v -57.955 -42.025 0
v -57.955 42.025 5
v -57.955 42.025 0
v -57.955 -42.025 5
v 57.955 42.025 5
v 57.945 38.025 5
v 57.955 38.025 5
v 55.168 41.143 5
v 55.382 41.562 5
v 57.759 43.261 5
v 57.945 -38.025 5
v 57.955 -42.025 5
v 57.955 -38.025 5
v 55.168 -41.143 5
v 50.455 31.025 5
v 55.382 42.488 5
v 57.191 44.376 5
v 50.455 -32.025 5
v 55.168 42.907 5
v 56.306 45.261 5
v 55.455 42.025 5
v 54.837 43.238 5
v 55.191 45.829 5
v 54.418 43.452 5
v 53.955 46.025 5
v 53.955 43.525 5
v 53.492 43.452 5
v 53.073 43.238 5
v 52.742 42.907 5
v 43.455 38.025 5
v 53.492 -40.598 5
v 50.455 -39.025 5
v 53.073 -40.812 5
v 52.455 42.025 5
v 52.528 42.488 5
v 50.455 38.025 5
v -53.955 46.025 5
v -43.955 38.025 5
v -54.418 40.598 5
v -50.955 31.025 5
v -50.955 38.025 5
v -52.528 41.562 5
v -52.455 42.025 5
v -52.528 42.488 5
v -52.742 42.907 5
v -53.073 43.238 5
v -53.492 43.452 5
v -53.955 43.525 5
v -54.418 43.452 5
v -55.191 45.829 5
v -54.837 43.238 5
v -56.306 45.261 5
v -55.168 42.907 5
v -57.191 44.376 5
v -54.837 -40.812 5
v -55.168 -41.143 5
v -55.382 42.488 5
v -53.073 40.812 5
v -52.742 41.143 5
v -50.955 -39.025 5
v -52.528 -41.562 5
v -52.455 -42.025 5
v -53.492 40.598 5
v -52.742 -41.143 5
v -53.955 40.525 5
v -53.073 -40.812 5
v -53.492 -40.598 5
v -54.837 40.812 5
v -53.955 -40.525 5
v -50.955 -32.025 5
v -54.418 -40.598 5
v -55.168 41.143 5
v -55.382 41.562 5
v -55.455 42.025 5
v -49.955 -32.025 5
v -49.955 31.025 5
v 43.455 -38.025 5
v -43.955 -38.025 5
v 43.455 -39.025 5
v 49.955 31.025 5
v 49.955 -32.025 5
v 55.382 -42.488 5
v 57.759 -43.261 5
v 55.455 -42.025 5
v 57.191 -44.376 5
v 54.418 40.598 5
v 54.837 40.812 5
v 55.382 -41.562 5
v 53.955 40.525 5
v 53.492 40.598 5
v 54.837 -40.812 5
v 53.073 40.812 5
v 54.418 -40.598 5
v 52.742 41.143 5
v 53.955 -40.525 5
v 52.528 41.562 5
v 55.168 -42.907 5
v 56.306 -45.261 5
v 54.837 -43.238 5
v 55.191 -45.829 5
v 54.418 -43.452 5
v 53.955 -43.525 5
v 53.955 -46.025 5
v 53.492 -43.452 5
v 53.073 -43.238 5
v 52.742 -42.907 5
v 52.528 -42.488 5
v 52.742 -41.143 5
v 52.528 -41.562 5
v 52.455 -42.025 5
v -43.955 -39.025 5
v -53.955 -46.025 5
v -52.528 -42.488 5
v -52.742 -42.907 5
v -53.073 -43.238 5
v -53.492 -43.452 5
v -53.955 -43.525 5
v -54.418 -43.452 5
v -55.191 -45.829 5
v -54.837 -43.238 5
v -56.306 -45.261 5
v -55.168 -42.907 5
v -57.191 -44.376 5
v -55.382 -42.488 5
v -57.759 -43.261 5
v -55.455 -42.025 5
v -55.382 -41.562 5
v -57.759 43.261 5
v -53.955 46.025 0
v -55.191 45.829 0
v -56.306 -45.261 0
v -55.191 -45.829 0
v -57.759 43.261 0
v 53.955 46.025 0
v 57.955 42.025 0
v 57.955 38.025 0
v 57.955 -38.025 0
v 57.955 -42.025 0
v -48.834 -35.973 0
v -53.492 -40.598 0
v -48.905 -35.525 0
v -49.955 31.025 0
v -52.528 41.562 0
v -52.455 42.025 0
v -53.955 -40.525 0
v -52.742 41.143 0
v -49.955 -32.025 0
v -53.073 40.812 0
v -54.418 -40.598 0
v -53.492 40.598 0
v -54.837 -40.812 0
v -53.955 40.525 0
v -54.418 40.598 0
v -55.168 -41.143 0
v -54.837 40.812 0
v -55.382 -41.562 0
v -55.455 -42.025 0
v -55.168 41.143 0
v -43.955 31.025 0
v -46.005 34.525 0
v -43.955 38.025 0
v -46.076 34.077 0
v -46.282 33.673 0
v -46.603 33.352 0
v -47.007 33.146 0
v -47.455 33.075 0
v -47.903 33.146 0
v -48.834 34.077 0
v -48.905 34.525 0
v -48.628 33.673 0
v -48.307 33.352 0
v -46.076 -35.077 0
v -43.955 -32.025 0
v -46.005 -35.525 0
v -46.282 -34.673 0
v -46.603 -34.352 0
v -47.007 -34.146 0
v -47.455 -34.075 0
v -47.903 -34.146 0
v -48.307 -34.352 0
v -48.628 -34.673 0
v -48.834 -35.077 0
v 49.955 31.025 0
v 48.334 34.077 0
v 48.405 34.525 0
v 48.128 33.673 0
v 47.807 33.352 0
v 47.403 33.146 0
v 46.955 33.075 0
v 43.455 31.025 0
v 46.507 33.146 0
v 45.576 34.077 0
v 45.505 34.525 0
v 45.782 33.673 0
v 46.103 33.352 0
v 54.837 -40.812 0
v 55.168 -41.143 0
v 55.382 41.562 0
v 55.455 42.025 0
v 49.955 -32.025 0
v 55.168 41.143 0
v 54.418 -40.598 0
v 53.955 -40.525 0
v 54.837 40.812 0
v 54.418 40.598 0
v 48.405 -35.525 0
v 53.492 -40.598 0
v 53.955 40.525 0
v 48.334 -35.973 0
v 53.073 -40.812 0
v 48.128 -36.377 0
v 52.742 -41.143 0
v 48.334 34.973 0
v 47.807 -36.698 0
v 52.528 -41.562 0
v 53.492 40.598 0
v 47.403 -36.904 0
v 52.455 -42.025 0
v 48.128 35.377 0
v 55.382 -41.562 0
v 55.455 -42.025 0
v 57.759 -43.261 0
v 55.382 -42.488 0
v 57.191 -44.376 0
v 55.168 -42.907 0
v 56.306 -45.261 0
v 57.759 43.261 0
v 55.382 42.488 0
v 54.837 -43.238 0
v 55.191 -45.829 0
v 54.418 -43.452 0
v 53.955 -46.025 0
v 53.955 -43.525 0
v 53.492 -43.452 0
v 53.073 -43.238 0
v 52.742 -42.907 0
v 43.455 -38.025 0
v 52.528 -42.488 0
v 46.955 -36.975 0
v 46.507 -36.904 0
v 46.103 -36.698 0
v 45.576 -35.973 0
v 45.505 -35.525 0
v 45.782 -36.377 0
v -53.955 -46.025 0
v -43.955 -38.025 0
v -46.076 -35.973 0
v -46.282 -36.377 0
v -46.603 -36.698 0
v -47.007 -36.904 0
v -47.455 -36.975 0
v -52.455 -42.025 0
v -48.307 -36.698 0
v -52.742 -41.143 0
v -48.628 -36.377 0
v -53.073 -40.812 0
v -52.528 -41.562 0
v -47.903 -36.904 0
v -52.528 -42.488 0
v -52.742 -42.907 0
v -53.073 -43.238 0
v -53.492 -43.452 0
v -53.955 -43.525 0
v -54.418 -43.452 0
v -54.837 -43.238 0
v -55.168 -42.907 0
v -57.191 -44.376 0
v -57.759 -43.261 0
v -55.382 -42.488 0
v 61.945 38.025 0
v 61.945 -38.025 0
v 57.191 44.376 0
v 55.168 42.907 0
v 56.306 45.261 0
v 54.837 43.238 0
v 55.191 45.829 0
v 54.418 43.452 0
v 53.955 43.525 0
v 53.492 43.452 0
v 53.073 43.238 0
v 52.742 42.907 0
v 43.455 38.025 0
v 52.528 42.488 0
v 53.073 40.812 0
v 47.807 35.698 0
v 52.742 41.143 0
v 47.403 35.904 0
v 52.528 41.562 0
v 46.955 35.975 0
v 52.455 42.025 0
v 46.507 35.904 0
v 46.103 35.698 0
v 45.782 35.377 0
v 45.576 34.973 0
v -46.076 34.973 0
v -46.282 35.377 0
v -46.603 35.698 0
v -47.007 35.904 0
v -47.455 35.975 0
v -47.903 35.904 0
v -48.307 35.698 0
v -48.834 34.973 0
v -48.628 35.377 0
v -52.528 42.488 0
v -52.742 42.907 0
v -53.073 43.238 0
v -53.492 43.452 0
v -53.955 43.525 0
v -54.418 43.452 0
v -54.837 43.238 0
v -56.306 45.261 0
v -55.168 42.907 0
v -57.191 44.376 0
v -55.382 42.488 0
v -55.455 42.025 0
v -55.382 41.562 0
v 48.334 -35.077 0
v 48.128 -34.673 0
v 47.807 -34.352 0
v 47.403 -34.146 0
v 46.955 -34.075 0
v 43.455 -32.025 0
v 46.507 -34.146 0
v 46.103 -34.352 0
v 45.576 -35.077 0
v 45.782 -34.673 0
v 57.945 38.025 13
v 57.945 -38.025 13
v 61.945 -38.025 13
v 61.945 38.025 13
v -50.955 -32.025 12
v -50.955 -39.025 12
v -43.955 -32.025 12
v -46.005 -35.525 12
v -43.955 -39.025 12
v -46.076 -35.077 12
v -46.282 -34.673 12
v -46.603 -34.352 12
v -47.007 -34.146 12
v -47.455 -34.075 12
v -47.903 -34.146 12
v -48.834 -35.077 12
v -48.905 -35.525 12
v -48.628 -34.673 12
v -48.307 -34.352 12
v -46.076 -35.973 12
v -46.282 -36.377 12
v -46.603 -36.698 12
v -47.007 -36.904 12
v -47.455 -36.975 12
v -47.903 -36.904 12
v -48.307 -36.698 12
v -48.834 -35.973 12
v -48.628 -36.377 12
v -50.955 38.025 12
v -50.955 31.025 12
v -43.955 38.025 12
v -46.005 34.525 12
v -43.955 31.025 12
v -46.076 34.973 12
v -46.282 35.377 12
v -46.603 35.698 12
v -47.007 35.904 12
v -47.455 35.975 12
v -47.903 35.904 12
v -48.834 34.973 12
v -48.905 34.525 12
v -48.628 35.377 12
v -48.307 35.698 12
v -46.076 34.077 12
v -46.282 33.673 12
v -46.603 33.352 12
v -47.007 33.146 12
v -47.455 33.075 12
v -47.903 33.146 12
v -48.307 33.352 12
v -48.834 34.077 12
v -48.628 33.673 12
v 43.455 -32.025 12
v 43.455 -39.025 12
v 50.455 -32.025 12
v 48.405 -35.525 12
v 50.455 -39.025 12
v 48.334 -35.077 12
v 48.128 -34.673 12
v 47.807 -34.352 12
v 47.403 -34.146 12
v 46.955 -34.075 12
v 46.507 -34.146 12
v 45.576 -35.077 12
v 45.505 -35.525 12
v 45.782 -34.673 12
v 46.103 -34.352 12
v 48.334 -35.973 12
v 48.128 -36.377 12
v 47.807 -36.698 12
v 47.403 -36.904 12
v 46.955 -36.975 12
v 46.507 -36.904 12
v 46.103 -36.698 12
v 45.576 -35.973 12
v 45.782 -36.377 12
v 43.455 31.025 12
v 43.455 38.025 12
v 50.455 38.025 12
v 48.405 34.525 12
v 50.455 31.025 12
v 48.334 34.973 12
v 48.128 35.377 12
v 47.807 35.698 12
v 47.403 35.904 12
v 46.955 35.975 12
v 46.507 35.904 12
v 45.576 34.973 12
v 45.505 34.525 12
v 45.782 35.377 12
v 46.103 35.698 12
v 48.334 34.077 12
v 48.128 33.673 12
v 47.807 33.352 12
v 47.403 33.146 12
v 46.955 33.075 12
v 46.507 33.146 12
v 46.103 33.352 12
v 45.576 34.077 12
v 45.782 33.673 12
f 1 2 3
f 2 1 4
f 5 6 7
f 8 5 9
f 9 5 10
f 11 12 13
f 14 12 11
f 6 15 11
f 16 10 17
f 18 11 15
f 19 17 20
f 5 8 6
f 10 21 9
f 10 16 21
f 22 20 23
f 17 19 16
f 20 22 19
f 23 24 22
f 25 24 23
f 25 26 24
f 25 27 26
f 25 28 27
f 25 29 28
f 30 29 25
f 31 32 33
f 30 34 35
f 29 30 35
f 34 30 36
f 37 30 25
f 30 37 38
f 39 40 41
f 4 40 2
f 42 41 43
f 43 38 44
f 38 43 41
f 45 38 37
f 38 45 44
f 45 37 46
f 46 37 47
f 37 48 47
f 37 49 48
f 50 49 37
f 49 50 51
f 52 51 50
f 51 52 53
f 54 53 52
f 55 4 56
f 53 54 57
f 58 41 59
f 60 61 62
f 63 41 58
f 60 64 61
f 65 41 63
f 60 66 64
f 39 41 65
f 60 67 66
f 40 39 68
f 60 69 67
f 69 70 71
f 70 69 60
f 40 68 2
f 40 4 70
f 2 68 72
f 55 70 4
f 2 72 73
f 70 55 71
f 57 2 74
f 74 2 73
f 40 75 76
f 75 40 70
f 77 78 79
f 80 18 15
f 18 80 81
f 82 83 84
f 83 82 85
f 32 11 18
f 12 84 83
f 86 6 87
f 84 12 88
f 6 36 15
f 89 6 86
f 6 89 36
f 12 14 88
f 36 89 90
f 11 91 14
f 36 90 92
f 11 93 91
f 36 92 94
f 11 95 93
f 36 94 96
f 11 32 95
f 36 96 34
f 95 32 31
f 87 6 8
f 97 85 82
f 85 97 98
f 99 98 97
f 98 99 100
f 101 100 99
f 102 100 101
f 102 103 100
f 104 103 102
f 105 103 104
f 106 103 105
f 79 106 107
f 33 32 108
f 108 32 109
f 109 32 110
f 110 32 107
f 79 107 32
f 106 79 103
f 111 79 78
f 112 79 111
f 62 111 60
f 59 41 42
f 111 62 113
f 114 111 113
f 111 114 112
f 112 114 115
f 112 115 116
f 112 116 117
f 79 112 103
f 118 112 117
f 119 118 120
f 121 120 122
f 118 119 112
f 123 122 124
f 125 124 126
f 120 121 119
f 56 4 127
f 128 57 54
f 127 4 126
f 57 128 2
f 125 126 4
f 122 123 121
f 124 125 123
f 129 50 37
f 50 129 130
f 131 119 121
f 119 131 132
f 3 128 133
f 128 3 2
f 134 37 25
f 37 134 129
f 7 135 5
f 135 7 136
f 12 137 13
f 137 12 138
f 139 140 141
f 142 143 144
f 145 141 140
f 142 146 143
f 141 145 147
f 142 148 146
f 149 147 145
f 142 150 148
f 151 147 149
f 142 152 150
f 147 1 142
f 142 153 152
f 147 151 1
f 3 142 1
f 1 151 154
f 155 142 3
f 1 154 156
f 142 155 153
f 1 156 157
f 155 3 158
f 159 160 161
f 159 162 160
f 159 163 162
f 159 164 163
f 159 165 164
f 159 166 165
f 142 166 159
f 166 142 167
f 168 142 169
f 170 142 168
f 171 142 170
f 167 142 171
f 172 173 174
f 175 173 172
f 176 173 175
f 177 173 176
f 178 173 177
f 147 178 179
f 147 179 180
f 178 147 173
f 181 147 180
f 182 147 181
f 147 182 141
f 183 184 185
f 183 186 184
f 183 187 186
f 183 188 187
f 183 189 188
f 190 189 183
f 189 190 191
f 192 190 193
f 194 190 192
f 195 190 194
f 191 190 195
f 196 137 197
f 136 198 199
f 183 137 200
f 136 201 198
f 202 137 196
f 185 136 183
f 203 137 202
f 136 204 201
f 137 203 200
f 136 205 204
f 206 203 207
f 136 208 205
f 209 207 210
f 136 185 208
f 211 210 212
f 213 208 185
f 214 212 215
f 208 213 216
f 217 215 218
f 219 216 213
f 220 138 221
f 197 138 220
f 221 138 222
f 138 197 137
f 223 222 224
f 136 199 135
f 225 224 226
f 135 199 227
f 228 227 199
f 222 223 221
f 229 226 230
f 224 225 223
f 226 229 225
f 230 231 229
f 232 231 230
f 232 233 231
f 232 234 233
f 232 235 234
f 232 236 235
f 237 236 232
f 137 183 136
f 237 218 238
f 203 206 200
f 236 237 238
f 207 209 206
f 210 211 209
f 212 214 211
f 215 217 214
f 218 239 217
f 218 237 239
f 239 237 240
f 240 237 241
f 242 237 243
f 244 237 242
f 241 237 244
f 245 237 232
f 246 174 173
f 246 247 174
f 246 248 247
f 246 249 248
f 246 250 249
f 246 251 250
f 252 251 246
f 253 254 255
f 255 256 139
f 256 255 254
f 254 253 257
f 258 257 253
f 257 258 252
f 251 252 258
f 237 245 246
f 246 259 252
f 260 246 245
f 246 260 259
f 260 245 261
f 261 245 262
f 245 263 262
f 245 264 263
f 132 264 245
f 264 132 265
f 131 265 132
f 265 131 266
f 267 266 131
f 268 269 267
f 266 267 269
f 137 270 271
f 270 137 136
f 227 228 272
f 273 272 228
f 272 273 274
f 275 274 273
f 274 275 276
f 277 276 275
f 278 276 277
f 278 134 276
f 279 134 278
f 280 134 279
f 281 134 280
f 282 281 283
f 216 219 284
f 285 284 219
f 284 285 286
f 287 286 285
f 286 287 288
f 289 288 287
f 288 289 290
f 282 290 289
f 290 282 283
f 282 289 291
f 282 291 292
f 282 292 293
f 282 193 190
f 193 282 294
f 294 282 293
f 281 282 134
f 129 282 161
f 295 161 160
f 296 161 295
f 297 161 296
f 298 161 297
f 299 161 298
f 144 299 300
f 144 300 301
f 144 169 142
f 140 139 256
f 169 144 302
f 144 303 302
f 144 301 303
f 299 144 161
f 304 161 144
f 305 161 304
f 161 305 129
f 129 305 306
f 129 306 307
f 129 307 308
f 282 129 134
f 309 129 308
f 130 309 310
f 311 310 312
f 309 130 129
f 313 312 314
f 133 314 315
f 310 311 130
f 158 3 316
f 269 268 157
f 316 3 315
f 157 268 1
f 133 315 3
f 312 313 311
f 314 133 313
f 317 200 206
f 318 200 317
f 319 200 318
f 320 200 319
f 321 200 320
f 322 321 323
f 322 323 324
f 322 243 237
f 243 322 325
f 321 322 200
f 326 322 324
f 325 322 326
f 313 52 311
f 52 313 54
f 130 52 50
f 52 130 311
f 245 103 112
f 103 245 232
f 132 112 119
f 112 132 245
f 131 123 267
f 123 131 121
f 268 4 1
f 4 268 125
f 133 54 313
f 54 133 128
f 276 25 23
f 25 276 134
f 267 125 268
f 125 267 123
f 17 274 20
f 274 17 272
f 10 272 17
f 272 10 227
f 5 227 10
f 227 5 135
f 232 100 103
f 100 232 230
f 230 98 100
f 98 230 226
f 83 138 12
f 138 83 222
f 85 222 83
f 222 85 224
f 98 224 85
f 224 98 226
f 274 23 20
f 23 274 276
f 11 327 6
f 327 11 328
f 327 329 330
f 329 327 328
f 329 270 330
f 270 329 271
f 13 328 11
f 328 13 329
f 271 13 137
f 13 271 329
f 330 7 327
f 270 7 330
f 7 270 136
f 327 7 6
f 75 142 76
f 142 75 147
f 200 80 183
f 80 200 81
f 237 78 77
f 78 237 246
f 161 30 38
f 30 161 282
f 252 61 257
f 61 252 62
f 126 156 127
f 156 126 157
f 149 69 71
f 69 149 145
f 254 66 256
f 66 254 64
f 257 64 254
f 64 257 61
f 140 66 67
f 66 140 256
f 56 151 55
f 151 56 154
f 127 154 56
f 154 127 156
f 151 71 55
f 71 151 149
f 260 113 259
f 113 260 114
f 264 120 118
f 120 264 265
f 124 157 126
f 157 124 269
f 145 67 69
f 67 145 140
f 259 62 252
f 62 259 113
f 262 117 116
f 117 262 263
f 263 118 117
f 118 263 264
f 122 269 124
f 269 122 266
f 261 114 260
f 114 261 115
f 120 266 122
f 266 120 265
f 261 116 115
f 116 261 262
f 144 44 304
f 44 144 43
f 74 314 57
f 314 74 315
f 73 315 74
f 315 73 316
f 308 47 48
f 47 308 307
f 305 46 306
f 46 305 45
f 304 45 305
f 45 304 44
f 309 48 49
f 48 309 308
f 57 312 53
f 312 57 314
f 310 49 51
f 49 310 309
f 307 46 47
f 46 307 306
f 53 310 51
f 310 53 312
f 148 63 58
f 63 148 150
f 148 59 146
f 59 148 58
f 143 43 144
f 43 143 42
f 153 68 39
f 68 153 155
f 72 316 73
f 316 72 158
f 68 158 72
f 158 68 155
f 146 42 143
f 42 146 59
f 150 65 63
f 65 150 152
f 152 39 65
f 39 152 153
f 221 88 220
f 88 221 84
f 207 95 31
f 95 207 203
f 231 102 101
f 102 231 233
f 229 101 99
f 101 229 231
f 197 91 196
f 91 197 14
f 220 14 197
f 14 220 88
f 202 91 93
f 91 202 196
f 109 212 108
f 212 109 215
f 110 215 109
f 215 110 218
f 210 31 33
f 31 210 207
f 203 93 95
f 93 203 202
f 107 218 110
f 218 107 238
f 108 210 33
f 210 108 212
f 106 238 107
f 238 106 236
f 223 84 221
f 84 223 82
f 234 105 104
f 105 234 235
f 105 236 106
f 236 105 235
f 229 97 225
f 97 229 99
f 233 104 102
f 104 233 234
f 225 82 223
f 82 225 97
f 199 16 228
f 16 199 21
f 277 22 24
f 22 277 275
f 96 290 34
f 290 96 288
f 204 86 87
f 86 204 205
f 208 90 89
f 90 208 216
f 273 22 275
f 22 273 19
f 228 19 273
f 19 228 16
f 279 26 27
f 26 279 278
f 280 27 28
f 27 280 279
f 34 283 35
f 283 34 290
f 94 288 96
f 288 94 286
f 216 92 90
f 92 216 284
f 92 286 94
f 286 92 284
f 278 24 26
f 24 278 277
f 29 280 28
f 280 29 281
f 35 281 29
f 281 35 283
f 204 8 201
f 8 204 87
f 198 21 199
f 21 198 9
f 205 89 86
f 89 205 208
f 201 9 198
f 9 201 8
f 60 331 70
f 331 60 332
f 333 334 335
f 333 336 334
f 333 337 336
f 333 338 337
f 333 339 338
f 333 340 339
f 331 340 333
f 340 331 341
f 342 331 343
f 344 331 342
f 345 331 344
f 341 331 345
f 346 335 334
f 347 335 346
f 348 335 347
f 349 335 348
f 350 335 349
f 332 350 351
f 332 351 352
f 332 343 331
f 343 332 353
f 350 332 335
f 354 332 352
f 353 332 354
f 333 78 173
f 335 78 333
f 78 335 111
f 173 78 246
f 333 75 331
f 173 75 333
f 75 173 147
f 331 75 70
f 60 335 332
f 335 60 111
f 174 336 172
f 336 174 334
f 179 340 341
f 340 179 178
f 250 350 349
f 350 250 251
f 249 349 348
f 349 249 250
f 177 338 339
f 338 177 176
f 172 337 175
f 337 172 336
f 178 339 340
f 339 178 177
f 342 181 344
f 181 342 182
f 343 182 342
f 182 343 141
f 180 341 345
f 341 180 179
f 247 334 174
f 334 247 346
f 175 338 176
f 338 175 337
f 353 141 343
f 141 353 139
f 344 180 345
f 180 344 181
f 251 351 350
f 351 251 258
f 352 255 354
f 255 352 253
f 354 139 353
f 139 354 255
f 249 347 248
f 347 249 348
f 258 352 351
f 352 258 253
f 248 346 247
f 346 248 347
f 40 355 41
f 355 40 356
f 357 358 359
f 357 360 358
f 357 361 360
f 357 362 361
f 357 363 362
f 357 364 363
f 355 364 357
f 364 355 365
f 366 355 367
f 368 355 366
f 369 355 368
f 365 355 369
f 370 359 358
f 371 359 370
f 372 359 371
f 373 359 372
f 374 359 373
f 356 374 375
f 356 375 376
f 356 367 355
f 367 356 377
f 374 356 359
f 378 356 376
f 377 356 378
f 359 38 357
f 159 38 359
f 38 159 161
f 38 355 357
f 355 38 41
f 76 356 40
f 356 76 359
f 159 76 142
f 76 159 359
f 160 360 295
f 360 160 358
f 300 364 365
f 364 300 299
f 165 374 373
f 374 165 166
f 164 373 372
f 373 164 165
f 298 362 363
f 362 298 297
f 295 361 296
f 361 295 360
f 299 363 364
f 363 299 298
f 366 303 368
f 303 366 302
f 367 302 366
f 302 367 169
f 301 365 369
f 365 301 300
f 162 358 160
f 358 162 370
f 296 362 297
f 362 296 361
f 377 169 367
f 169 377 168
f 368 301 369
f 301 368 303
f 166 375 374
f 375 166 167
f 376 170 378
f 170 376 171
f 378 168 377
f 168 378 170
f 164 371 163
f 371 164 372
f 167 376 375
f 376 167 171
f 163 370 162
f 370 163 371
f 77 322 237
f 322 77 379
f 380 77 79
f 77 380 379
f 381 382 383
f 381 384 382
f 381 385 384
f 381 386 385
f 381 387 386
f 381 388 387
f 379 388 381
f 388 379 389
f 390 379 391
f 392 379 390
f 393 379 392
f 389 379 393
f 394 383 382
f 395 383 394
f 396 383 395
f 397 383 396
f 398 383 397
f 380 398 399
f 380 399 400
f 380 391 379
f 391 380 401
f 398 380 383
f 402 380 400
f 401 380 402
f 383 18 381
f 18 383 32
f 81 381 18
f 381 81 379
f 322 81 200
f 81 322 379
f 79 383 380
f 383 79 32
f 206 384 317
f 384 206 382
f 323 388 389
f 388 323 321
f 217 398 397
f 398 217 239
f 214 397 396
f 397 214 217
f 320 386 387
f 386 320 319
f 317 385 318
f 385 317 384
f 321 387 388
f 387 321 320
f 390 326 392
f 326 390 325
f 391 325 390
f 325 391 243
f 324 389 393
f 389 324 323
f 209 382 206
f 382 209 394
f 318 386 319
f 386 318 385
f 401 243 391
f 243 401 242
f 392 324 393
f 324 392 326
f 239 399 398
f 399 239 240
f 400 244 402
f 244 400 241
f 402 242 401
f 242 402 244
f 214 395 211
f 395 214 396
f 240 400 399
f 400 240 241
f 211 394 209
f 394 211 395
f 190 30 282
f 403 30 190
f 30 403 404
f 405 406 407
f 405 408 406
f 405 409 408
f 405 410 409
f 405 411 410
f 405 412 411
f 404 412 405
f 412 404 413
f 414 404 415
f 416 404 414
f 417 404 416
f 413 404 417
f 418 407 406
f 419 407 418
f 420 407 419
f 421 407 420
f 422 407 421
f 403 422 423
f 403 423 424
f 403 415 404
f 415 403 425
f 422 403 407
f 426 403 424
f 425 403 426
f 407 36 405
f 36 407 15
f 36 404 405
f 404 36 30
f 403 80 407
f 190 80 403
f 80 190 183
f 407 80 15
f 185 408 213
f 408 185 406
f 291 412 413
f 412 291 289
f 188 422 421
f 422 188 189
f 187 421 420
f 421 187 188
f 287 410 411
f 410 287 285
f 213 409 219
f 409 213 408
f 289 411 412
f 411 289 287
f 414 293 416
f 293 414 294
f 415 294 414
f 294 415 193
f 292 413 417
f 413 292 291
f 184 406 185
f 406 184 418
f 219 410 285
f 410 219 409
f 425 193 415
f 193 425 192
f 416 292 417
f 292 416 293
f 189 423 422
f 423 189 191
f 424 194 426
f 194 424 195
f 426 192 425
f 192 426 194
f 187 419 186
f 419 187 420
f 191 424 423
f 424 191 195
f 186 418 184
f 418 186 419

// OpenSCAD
 /* File: BMScable/pcb/pcb-frame.scad
  * frame for pc board
  * Latest edit: 20210818
 */
 
 $fn=20;
  
module rounded_rectangle_hull(wid,slen,ht,rad)
{
 hull()
 {    
    translate([-wid/2+rad,rad,0])
        cylinder(r=rad,h=ht,center=false);

   translate([ wid/2-rad,rad,0])
        cylinder(r=rad,h=ht,center=false);

    translate([-wid/2+rad,slen-rad,0])
        cylinder(r=rad,h=ht,center=false);
    
    translate([ wid/2-rad,slen-rad,0])
        cylinder(r=rad,h=ht,center=false);
 }
}
brdwid = 76.05;
brdlen = 99.91;
brdholdx = 93.3;
brdholdy = 69.5;
brdholdia = 3.5;

basethk = 5;
baserim = 8;
baserad = 4;

crnr = 7;
   ll = baserim*2 + brdlen;
    ww = baserim*2 + brdwid;

module base()
{
 
    difference()
    {
        union()
        {
            translate([0,-ww/2,0])
            rounded_rectangle_hull(ll,ww,basethk,baserad);
            
            // Lip to strengthen cable connect end of pcb
            translate([ll/2-0.01,-brdwid/2,0])
            cube([4,brdwid,basethk+8],center=false);
      
        }
        union()
        {
            // punch out rectangle below pcb
            translate([-brdlen/2,-brdwid/2,-0.01])
                 cube([brdlen,brdwid,50],center=false);
            
            // JIC base mounting holes
            translate([-ll/2+4,-ww/2+4,0])cylinder(d=3.0,h=50,center=false);
            translate([-ll/2+4,+ww/2-4,0])cylinder(d=3.0,h=50,center=false);
            translate([+ll/2-4,-ww/2+4,0])cylinder(d=3.0,h=50,center=false);
            translate([+ll/2-4,+ww/2-4,0])cylinder(d=3.0,h=50,center=false);    
        }
    }
}
// Mounting post and holes for pcb
module post(a)
{
    translate(a)
    { difference()
        {
            union()
            {
                cube([crnr,crnr,basethk+7],center=false);
            }
            union()
            {
                translate([crnr/2,crnr/2,0])
                cylinder(d = 2.9,h = 50,center=false);
            }
        }
    }
}
module total()
{
xx = 0.5; // Hole centering adjustment    
    base();
    
    post([-ll/2+crnr,-ww/2+crnr,0]);
    post([+brdlen/2-crnr+xx,-ww/2+crnr,0]);
    post([-ll/2+crnr,+ww/2-crnr-baserim,0]);
    post([+brdlen/2-crnr+xx,+ww/2-crnr-baserim,0]);
}

total();
